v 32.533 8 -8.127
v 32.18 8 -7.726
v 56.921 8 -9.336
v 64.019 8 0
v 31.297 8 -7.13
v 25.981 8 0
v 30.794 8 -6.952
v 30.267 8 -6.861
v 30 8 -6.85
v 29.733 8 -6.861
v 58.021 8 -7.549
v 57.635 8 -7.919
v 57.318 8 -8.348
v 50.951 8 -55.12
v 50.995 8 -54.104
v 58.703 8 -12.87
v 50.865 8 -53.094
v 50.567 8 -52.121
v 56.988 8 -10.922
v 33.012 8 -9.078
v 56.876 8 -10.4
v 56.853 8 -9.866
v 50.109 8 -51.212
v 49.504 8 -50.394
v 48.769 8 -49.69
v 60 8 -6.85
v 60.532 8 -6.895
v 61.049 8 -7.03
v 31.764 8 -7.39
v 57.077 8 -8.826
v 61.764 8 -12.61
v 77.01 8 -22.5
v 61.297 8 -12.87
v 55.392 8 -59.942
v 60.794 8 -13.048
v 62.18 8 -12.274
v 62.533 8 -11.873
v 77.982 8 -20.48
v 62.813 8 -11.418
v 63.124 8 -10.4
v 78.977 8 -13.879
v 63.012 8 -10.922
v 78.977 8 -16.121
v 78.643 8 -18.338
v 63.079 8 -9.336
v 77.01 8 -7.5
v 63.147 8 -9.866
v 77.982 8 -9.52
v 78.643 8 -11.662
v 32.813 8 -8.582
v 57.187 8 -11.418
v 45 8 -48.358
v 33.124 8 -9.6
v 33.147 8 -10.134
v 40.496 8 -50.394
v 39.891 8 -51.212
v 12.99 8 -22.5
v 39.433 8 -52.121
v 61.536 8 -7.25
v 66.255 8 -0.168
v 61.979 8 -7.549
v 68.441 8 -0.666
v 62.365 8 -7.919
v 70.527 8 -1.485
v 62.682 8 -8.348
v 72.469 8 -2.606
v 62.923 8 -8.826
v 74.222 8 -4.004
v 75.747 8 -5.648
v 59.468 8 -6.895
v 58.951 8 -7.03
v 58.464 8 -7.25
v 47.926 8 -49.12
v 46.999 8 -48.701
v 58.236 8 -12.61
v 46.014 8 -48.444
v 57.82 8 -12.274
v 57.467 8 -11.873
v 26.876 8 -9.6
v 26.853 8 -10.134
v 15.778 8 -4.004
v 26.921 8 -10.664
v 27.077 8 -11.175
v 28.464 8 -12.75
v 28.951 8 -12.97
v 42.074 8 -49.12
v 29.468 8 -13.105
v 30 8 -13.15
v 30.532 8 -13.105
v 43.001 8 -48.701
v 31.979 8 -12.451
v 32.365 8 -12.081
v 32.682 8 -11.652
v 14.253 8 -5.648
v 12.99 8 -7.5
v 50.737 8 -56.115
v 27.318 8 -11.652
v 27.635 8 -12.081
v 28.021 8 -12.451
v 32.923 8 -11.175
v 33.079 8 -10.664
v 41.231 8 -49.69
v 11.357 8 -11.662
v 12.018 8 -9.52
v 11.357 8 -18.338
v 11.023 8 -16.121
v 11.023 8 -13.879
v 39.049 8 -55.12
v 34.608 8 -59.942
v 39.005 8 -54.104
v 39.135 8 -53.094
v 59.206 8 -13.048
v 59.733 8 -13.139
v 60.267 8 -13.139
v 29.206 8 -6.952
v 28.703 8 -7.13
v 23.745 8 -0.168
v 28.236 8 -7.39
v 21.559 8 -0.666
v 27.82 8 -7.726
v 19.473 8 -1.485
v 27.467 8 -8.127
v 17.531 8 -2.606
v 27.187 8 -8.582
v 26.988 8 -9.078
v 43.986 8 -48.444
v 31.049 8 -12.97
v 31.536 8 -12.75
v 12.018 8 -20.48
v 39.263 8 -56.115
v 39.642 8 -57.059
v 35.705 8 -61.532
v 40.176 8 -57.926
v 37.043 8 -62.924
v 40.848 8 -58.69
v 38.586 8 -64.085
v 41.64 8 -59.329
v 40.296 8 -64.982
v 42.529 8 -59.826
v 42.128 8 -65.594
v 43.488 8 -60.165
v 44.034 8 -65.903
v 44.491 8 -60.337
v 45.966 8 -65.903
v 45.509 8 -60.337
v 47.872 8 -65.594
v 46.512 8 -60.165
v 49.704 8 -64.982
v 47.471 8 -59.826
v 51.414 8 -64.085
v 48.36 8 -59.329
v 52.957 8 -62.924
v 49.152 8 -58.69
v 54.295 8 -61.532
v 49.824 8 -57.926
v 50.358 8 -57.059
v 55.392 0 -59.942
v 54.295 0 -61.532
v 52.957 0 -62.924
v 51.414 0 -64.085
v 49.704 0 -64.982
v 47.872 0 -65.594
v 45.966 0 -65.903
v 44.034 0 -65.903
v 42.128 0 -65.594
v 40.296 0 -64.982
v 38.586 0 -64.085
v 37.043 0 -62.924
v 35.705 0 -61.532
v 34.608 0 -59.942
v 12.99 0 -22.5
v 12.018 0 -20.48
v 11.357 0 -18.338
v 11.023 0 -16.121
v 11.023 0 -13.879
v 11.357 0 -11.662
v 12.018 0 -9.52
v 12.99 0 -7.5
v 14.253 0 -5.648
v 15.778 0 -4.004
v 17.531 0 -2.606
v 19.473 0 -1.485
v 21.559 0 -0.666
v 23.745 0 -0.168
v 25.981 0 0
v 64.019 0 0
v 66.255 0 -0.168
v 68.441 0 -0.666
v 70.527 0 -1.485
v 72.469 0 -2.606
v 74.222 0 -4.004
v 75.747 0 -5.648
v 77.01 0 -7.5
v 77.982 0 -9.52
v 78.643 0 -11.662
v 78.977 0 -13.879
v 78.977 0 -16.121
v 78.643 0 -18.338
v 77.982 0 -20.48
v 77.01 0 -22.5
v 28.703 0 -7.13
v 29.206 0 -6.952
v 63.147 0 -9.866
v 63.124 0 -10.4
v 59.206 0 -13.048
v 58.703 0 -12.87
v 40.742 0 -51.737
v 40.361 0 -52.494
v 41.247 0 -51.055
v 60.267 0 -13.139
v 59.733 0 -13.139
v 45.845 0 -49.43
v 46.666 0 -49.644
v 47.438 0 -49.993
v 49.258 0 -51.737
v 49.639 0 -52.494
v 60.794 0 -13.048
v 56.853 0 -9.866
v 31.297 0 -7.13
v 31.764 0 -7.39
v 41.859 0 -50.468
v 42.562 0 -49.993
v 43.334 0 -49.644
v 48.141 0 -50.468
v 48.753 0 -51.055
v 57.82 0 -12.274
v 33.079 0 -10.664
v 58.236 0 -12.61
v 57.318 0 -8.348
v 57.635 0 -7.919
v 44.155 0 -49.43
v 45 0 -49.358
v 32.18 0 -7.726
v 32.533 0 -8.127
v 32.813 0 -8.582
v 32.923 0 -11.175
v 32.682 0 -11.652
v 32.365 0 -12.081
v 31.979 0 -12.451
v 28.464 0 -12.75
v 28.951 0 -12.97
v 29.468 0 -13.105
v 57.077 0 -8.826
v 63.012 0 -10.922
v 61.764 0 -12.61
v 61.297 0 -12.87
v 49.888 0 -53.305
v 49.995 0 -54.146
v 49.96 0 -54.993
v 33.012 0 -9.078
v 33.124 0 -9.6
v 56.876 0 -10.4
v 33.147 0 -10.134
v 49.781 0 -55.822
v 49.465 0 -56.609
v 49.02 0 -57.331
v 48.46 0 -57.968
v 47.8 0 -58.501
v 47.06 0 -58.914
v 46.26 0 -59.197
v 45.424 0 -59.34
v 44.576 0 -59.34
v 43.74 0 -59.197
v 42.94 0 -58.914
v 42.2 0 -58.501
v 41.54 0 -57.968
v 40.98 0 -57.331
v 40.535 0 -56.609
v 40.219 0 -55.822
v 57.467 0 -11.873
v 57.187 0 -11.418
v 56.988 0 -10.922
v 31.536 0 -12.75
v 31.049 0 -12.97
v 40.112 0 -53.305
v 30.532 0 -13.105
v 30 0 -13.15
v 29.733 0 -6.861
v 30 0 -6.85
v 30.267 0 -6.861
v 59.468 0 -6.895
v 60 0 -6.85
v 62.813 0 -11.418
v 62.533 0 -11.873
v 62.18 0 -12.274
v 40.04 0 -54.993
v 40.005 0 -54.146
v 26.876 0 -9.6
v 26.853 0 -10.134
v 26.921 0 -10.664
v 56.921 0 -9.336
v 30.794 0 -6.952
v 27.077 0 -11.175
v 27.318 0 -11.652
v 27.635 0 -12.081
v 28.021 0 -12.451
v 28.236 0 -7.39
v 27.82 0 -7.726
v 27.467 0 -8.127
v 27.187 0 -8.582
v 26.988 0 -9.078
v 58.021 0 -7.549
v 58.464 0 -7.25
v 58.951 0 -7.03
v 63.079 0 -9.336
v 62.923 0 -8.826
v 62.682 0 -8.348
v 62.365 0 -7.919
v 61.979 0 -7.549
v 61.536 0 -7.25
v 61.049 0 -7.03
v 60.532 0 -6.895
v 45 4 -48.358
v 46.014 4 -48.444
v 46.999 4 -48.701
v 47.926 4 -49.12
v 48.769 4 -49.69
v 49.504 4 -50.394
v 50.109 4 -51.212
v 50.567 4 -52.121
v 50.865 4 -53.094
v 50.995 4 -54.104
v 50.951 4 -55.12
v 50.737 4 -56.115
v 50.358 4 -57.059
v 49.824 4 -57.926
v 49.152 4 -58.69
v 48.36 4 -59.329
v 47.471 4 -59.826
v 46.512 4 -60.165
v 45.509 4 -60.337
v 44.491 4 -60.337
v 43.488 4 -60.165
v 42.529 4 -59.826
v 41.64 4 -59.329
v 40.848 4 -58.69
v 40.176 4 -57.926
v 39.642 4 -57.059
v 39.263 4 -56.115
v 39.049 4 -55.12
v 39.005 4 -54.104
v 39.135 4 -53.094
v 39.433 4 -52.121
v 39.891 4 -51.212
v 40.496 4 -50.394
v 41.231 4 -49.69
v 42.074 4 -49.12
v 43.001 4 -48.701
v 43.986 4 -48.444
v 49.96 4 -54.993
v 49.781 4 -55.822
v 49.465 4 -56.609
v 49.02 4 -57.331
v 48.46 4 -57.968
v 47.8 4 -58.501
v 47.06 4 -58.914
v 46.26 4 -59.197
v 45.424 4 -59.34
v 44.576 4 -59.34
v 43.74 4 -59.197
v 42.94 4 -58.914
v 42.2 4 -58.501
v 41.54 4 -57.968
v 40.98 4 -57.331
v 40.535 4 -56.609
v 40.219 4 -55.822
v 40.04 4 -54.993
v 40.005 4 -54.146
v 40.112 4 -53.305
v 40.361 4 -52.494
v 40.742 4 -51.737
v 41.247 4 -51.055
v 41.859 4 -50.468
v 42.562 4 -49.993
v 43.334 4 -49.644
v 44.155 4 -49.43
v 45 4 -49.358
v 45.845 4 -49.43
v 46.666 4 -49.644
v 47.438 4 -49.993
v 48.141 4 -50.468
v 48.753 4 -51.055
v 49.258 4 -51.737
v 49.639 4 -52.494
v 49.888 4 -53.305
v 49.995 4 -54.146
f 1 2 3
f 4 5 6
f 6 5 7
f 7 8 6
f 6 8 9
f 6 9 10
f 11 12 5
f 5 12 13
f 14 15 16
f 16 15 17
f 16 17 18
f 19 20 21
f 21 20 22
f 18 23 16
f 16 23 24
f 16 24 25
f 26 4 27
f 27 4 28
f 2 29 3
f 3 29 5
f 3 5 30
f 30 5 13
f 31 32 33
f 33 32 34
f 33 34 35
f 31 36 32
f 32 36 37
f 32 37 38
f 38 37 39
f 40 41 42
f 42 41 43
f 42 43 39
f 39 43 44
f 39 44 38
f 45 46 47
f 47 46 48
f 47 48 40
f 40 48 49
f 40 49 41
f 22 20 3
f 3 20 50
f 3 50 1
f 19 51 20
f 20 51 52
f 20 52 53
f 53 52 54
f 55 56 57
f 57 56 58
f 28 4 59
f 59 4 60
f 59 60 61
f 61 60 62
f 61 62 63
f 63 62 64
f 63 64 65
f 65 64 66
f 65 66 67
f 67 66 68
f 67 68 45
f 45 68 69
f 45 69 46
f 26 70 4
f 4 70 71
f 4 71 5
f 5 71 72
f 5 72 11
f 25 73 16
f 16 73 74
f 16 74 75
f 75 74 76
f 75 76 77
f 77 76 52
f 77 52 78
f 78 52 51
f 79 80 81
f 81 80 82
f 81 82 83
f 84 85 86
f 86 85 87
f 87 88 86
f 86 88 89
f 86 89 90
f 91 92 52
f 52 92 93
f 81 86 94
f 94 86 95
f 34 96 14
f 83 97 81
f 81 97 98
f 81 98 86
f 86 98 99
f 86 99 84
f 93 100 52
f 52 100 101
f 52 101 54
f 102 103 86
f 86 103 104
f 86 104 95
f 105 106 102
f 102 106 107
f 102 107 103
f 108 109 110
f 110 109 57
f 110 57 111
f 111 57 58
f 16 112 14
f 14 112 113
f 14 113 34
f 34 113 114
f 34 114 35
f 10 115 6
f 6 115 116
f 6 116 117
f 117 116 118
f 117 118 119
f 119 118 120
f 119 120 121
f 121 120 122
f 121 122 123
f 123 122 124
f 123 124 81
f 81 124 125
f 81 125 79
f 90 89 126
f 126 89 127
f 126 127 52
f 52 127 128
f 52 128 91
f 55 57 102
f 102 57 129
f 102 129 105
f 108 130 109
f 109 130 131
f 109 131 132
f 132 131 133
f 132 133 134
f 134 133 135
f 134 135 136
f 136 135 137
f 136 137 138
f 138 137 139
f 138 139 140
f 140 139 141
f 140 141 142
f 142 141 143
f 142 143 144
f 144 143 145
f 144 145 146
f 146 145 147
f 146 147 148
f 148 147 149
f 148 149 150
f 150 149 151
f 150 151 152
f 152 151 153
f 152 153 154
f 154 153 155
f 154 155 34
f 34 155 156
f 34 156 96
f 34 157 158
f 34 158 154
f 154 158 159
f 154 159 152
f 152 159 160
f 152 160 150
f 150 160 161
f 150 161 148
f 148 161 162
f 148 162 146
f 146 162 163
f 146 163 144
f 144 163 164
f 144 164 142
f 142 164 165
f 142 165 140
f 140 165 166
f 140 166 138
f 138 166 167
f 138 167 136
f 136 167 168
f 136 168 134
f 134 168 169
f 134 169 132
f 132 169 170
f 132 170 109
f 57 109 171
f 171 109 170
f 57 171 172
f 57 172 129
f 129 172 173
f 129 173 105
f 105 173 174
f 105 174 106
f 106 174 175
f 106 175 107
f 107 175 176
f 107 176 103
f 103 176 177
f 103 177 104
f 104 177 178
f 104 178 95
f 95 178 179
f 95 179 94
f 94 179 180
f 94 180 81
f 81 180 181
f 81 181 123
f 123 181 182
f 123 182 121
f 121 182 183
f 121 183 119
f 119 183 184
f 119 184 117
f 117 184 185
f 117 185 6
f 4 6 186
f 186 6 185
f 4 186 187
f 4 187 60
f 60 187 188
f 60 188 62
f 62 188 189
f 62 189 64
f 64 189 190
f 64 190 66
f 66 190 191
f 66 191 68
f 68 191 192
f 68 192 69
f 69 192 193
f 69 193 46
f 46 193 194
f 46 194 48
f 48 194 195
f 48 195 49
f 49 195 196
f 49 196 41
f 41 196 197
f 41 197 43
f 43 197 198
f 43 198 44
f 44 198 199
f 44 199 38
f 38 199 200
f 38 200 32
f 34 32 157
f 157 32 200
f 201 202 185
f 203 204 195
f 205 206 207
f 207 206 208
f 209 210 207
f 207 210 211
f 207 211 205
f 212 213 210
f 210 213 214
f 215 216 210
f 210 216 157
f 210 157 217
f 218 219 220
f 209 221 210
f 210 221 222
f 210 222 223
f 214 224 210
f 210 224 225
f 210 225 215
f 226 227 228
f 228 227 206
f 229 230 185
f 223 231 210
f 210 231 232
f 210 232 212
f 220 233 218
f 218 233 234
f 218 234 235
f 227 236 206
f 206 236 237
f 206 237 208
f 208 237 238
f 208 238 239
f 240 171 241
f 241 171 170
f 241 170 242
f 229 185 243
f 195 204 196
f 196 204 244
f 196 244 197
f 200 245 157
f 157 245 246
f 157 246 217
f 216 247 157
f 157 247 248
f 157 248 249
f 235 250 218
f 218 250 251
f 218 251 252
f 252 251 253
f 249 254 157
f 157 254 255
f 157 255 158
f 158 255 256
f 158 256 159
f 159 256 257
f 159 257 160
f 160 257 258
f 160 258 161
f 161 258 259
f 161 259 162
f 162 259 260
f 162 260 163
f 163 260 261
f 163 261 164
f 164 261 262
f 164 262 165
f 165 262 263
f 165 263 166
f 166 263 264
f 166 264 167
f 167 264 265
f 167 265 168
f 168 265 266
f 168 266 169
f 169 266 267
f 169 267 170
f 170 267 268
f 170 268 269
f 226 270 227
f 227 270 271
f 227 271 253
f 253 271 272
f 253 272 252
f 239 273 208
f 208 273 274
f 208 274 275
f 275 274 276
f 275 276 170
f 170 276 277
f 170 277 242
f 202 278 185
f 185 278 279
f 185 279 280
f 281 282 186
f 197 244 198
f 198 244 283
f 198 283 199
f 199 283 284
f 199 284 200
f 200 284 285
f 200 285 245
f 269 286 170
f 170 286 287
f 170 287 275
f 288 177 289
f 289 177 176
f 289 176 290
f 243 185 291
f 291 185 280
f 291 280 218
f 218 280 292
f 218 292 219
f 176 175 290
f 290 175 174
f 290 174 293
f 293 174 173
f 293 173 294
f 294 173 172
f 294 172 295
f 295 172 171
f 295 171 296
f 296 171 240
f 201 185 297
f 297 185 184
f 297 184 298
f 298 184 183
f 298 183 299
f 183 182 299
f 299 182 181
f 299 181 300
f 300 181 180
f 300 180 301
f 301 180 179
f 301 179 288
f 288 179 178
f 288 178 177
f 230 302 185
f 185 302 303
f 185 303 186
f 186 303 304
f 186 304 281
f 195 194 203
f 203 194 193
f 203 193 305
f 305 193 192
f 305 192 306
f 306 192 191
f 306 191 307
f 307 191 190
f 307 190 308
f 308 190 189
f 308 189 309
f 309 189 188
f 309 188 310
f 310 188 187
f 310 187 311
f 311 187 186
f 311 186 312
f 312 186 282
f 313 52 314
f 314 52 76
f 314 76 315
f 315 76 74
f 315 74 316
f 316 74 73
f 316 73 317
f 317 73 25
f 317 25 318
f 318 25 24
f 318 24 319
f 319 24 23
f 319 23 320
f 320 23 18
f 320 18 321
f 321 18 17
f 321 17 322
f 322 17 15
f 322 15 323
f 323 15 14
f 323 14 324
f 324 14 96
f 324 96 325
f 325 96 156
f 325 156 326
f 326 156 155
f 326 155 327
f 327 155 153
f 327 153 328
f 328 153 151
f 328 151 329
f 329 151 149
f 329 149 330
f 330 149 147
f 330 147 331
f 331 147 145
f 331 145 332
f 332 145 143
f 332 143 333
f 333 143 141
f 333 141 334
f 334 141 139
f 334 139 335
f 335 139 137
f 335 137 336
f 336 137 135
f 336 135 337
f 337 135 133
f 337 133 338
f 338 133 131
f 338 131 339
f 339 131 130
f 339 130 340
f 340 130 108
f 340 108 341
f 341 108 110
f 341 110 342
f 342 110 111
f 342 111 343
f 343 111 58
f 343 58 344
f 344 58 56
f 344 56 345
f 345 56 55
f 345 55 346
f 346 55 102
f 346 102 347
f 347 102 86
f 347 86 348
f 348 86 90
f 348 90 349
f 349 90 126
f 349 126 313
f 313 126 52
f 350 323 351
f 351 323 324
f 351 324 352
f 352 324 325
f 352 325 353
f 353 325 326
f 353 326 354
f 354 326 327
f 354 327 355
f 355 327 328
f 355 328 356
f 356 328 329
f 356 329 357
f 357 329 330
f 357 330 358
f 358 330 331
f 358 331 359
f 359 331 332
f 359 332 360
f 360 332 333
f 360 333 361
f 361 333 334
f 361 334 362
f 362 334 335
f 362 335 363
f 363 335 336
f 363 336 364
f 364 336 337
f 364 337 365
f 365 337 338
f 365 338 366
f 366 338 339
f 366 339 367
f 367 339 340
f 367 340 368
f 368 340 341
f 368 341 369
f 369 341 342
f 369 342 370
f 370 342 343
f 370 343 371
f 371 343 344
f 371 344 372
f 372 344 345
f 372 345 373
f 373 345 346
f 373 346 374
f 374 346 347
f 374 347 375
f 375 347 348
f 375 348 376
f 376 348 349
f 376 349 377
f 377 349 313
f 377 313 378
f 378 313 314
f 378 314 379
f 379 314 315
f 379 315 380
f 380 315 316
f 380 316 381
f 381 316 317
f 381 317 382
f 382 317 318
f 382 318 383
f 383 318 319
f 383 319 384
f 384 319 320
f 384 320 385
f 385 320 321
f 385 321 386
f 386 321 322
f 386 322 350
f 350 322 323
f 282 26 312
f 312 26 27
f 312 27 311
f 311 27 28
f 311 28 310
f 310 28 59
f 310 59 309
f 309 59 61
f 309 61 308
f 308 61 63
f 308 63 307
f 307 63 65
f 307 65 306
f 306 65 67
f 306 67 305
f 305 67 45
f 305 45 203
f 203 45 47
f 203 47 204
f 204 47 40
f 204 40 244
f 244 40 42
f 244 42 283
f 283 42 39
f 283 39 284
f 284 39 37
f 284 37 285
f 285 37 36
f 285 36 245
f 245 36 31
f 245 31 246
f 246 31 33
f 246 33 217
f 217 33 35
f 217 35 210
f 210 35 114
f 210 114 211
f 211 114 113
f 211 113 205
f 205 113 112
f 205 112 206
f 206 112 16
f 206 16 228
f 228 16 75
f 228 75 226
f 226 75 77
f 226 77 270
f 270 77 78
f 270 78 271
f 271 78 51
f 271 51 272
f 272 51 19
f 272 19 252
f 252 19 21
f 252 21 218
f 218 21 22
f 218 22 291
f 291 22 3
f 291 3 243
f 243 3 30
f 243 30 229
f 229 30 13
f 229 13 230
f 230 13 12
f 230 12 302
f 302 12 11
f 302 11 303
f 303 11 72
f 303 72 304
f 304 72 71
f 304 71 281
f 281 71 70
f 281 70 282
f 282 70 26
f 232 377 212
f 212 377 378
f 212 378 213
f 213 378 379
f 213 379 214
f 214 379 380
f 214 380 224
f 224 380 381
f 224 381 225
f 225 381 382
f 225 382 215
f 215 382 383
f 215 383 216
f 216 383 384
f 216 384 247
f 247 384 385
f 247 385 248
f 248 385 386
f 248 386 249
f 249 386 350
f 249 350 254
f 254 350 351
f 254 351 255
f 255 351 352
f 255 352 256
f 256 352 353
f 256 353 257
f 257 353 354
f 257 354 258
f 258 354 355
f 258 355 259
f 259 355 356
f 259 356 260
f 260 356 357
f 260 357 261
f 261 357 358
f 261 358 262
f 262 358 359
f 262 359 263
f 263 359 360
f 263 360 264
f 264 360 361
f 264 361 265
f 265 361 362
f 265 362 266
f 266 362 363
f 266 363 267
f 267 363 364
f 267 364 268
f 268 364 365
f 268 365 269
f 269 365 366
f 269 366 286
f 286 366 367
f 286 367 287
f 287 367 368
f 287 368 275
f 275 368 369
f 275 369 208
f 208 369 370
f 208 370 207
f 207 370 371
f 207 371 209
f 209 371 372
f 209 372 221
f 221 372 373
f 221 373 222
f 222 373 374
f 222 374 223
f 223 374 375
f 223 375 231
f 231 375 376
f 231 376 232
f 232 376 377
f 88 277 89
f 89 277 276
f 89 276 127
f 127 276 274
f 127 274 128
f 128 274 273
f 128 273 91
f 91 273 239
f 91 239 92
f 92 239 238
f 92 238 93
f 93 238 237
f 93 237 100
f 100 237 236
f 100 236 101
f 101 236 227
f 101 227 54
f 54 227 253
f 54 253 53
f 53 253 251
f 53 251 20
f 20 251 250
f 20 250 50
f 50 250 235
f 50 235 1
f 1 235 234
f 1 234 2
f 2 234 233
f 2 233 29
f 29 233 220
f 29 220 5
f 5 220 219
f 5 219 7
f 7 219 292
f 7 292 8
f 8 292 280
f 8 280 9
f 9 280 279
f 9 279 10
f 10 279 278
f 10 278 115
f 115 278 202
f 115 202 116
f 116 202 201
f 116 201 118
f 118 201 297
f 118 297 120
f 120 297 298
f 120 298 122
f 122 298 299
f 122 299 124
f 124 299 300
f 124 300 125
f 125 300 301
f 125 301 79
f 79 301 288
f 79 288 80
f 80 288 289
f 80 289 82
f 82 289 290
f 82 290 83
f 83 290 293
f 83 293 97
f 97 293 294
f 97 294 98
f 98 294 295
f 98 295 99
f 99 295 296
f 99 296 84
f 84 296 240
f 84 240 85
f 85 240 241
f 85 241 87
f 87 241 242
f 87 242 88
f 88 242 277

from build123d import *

# Parameters (mm, degrees)
BOSS_EXTRUDE1_DEPTH = 8
SKETCH2_R           = 6
SKETCH2_R_2         = 3
SKETCH2_R_3         = 3.15
CUT_EXTRUDE1_DEPTH  = 4
SKETCH3_R           = 5
CUT_EXTRUDE2_DEPTH  = 10
SKETCH4_R           = 3.15
CUT_EXTRUDE4_DEPTH  = 11


with BuildPart() as part:
    # Sketch1 → Boss-Extrude1 (new body)
    with BuildSketch(Plane(origin=(0, 0, 0), x_dir=(1, 0, 0), z_dir=(0, 1, 0))):
        with BuildLine():
            Line((12.990381057, 22.5), (34.607695155, 59.942286341))
            ThreePointArc((34.607695155, 59.942286341), (45, 65.942286341), (55.392304845, 59.942286341))
            Line((55.392304845, 59.942286341), (77.009618943, 22.5))
            ThreePointArc((77.009618943, 22.5), (77.009618943, 7.5), (64.019237886, 0))
            Line((64.019237886, 0), (25.980762114, 0))
            ThreePointArc((25.980762114, 0), (12.990381057, 7.5), (12.990381057, 22.5))
        make_face()
    extrude(amount=BOSS_EXTRUDE1_DEPTH)

    # Sketch2 → Cut-Extrude1 (cut)
    with BuildSketch(Plane(origin=(0, 8, 0), x_dir=(1, 0, 0), z_dir=(0, 1, 0))):
        with Locations((45, 54.358166274)):
            Circle(SKETCH2_R)
        with Locations((30, 10)):
            Circle(SKETCH2_R_2)
        with Locations((60, 10)):
            Circle(SKETCH2_R_3)
    extrude(amount=-CUT_EXTRUDE1_DEPTH, mode=Mode.SUBTRACT)

    # Sketch3 → Cut-Extrude2 (cut)
    with BuildSketch(Plane(origin=(0, 4, 0), x_dir=(1, 0, 0), z_dir=(0, 1, 0))):
        with Locations((45, 54.358166274)):
            Circle(SKETCH3_R)
    extrude(amount=-CUT_EXTRUDE2_DEPTH, mode=Mode.SUBTRACT)

    # Sketch4 → Cut-Extrude4 (cut)
    with BuildSketch(Plane(origin=(0, 0, 0), x_dir=(1, 0, 0), z_dir=(0, 1, 0))):
        with Locations((30, 10)):
            Circle(SKETCH4_R)
        with Locations((60, 10)):
            Circle(SKETCH4_R)
    extrude(amount=CUT_EXTRUDE4_DEPTH, mode=Mode.SUBTRACT)


solid = part.part
